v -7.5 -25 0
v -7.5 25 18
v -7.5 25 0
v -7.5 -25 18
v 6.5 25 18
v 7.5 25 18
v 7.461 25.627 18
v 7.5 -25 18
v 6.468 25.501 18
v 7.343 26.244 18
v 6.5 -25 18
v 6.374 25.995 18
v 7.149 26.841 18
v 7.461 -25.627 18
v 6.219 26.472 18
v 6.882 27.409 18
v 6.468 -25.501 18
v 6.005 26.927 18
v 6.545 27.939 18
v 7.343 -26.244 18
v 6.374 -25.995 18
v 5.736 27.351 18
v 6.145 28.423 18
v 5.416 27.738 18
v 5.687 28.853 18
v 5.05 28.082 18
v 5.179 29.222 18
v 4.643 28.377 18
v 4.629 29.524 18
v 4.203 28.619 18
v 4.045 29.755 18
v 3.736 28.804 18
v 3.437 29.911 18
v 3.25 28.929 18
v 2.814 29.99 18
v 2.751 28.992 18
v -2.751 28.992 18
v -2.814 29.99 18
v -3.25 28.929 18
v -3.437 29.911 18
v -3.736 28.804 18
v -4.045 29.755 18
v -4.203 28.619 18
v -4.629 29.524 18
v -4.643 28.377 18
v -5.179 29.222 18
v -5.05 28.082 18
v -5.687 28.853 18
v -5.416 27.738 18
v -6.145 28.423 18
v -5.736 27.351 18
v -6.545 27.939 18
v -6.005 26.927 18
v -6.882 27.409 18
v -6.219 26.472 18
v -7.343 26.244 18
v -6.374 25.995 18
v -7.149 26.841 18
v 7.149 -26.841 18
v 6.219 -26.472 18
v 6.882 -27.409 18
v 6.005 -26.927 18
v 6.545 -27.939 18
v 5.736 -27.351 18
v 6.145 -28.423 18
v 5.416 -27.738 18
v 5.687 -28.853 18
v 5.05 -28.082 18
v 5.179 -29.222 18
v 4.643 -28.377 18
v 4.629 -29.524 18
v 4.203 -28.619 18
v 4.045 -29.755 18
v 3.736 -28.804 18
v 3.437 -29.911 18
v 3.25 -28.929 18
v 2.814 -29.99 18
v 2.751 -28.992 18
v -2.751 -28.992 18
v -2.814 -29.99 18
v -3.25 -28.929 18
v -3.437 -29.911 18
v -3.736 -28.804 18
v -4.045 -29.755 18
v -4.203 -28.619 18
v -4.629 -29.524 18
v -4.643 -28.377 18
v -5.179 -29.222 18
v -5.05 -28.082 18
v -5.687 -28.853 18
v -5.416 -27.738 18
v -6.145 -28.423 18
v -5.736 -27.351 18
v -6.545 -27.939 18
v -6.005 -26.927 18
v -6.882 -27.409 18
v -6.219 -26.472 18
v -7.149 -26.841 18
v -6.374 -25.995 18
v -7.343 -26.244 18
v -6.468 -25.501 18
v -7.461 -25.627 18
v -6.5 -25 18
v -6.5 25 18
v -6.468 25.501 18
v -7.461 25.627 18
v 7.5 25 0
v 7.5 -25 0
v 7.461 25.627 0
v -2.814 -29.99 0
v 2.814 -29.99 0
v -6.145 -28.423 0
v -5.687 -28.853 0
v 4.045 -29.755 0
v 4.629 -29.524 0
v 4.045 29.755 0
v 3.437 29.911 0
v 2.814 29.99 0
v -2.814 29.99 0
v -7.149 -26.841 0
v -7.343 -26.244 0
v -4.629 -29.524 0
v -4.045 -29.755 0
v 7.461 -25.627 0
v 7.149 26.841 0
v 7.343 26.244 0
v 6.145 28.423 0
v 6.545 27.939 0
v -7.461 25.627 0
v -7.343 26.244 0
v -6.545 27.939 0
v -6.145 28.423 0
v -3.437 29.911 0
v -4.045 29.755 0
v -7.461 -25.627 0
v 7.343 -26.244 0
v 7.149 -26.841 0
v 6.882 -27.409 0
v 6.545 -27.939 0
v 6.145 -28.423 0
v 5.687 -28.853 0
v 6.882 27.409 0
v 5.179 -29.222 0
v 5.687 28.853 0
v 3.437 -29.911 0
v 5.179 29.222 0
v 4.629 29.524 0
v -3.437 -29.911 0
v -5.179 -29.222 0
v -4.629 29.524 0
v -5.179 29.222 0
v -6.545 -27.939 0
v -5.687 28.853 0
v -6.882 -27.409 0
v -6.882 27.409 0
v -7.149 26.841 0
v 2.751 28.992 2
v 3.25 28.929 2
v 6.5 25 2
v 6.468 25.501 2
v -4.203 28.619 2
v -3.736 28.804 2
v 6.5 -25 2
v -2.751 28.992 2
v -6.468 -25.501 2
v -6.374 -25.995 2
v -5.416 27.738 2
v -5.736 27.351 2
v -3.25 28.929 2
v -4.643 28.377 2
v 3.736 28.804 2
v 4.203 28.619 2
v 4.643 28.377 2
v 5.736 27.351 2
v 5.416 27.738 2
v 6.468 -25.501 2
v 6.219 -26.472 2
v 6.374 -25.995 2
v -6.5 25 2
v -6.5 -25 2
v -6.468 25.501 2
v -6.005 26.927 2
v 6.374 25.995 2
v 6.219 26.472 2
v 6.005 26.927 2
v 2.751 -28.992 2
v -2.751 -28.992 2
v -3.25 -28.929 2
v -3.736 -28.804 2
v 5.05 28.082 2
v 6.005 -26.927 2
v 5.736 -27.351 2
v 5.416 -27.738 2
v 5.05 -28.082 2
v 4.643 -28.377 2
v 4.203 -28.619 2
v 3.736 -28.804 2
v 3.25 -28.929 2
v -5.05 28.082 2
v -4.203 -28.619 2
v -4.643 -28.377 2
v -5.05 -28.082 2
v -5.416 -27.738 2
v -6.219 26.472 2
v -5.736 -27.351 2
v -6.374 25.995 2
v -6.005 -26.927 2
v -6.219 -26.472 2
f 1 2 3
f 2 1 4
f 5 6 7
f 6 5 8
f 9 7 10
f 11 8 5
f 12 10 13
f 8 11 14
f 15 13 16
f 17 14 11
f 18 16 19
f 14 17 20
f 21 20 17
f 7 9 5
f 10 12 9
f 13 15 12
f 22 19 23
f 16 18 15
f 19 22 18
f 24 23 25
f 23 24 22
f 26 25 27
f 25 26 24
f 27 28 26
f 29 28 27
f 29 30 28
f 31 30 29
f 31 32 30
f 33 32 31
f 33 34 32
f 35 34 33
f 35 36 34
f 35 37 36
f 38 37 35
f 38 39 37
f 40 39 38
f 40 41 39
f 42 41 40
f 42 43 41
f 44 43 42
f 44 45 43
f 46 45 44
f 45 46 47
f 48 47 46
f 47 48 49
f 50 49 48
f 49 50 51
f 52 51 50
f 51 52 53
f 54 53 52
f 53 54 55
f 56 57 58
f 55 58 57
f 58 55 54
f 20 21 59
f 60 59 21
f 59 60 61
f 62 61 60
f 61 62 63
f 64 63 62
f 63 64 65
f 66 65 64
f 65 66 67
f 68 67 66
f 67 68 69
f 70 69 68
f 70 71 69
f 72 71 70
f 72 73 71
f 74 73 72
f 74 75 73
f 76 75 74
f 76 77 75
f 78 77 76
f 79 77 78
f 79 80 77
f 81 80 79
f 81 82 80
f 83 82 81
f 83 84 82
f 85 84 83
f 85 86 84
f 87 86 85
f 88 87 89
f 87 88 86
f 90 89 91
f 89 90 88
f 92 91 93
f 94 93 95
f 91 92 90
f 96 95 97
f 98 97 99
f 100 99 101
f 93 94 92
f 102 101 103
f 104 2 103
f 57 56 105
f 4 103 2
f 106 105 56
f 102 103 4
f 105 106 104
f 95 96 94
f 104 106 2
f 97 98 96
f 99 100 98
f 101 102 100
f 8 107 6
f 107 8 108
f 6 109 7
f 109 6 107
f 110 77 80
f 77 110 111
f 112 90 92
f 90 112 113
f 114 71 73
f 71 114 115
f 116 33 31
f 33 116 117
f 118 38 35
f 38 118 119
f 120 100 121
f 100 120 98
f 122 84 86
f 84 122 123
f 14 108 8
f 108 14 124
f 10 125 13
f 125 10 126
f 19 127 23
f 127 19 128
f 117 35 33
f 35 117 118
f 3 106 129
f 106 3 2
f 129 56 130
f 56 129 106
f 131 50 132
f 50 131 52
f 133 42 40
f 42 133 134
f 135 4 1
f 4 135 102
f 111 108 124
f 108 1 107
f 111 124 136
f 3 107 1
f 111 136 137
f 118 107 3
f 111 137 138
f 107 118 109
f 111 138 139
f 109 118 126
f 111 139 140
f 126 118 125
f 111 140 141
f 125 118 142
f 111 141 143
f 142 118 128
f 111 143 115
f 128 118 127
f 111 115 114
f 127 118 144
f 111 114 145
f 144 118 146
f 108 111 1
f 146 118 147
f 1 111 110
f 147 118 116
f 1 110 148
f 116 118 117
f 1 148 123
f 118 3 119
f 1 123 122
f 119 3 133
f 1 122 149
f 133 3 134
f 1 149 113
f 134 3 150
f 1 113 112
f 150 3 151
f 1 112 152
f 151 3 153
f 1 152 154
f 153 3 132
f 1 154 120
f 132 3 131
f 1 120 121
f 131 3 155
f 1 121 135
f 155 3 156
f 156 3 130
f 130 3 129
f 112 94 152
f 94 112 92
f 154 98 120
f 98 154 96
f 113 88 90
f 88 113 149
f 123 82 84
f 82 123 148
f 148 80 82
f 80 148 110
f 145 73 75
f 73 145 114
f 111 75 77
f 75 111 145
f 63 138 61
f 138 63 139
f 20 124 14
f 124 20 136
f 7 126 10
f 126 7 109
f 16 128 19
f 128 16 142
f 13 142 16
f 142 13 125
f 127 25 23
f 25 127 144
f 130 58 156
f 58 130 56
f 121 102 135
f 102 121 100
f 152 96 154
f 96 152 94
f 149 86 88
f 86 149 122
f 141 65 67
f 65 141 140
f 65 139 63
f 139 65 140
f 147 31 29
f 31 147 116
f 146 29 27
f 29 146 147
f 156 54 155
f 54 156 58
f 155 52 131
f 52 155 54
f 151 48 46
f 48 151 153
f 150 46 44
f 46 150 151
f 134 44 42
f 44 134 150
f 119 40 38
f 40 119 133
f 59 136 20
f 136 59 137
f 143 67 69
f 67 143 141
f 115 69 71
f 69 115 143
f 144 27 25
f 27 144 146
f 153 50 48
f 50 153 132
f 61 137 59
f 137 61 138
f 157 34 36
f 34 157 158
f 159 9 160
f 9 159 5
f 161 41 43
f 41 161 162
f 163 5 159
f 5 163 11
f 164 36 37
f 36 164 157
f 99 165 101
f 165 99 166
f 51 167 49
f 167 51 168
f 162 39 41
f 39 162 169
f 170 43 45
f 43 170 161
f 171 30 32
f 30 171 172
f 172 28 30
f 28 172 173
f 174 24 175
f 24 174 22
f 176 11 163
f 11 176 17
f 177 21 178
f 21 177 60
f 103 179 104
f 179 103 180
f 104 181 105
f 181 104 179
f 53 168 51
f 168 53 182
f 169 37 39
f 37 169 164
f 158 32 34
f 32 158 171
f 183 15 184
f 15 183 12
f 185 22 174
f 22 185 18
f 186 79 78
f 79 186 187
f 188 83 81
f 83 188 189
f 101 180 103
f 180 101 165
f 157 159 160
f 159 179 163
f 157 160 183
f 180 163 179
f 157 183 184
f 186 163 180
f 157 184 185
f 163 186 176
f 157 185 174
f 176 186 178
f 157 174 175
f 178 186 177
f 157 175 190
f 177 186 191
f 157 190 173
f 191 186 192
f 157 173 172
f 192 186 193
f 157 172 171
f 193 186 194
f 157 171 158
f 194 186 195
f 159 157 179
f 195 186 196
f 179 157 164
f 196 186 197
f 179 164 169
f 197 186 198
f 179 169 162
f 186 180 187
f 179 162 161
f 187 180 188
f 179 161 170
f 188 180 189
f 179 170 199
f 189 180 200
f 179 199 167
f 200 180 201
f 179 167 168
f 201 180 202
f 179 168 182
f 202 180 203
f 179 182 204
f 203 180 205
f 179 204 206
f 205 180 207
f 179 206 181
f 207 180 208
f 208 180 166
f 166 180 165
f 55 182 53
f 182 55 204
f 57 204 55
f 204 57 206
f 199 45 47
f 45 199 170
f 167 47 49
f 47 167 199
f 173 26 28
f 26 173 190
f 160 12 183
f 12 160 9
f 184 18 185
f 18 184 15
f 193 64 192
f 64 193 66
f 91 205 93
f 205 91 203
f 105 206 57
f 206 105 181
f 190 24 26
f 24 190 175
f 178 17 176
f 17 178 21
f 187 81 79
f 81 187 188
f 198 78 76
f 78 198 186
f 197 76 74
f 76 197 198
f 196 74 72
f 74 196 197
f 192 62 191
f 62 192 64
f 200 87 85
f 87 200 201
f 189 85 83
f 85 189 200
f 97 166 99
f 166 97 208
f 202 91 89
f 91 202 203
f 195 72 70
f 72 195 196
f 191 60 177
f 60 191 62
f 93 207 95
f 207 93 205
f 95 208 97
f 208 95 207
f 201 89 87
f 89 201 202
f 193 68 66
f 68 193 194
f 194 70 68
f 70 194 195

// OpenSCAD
$fn = 50;


difference() {
	union() {
		hull() {
			translate(v = [-2.5000000000, 25.0000000000, 0]) {
				cylinder(h = 18, r = 5);
			}
			translate(v = [2.5000000000, 25.0000000000, 0]) {
				cylinder(h = 18, r = 5);
			}
			translate(v = [-2.5000000000, -25.0000000000, 0]) {
				cylinder(h = 18, r = 5);
			}
			translate(v = [2.5000000000, -25.0000000000, 0]) {
				cylinder(h = 18, r = 5);
			}
		}
	}
	union() {
		translate(v = [0, 0, 2]) {
			#hull() {
				translate(v = [-2.5000000000, 25.0000000000, 0]) {
					cylinder(h = 16, r = 4);
				}
				translate(v = [2.5000000000, 25.0000000000, 0]) {
					cylinder(h = 16, r = 4);
				}
				translate(v = [-2.5000000000, -25.0000000000, 0]) {
					cylinder(h = 16, r = 4);
				}
				translate(v = [2.5000000000, -25.0000000000, 0]) {
					cylinder(h = 16, r = 4);
				}
			}
		}
	}
}
